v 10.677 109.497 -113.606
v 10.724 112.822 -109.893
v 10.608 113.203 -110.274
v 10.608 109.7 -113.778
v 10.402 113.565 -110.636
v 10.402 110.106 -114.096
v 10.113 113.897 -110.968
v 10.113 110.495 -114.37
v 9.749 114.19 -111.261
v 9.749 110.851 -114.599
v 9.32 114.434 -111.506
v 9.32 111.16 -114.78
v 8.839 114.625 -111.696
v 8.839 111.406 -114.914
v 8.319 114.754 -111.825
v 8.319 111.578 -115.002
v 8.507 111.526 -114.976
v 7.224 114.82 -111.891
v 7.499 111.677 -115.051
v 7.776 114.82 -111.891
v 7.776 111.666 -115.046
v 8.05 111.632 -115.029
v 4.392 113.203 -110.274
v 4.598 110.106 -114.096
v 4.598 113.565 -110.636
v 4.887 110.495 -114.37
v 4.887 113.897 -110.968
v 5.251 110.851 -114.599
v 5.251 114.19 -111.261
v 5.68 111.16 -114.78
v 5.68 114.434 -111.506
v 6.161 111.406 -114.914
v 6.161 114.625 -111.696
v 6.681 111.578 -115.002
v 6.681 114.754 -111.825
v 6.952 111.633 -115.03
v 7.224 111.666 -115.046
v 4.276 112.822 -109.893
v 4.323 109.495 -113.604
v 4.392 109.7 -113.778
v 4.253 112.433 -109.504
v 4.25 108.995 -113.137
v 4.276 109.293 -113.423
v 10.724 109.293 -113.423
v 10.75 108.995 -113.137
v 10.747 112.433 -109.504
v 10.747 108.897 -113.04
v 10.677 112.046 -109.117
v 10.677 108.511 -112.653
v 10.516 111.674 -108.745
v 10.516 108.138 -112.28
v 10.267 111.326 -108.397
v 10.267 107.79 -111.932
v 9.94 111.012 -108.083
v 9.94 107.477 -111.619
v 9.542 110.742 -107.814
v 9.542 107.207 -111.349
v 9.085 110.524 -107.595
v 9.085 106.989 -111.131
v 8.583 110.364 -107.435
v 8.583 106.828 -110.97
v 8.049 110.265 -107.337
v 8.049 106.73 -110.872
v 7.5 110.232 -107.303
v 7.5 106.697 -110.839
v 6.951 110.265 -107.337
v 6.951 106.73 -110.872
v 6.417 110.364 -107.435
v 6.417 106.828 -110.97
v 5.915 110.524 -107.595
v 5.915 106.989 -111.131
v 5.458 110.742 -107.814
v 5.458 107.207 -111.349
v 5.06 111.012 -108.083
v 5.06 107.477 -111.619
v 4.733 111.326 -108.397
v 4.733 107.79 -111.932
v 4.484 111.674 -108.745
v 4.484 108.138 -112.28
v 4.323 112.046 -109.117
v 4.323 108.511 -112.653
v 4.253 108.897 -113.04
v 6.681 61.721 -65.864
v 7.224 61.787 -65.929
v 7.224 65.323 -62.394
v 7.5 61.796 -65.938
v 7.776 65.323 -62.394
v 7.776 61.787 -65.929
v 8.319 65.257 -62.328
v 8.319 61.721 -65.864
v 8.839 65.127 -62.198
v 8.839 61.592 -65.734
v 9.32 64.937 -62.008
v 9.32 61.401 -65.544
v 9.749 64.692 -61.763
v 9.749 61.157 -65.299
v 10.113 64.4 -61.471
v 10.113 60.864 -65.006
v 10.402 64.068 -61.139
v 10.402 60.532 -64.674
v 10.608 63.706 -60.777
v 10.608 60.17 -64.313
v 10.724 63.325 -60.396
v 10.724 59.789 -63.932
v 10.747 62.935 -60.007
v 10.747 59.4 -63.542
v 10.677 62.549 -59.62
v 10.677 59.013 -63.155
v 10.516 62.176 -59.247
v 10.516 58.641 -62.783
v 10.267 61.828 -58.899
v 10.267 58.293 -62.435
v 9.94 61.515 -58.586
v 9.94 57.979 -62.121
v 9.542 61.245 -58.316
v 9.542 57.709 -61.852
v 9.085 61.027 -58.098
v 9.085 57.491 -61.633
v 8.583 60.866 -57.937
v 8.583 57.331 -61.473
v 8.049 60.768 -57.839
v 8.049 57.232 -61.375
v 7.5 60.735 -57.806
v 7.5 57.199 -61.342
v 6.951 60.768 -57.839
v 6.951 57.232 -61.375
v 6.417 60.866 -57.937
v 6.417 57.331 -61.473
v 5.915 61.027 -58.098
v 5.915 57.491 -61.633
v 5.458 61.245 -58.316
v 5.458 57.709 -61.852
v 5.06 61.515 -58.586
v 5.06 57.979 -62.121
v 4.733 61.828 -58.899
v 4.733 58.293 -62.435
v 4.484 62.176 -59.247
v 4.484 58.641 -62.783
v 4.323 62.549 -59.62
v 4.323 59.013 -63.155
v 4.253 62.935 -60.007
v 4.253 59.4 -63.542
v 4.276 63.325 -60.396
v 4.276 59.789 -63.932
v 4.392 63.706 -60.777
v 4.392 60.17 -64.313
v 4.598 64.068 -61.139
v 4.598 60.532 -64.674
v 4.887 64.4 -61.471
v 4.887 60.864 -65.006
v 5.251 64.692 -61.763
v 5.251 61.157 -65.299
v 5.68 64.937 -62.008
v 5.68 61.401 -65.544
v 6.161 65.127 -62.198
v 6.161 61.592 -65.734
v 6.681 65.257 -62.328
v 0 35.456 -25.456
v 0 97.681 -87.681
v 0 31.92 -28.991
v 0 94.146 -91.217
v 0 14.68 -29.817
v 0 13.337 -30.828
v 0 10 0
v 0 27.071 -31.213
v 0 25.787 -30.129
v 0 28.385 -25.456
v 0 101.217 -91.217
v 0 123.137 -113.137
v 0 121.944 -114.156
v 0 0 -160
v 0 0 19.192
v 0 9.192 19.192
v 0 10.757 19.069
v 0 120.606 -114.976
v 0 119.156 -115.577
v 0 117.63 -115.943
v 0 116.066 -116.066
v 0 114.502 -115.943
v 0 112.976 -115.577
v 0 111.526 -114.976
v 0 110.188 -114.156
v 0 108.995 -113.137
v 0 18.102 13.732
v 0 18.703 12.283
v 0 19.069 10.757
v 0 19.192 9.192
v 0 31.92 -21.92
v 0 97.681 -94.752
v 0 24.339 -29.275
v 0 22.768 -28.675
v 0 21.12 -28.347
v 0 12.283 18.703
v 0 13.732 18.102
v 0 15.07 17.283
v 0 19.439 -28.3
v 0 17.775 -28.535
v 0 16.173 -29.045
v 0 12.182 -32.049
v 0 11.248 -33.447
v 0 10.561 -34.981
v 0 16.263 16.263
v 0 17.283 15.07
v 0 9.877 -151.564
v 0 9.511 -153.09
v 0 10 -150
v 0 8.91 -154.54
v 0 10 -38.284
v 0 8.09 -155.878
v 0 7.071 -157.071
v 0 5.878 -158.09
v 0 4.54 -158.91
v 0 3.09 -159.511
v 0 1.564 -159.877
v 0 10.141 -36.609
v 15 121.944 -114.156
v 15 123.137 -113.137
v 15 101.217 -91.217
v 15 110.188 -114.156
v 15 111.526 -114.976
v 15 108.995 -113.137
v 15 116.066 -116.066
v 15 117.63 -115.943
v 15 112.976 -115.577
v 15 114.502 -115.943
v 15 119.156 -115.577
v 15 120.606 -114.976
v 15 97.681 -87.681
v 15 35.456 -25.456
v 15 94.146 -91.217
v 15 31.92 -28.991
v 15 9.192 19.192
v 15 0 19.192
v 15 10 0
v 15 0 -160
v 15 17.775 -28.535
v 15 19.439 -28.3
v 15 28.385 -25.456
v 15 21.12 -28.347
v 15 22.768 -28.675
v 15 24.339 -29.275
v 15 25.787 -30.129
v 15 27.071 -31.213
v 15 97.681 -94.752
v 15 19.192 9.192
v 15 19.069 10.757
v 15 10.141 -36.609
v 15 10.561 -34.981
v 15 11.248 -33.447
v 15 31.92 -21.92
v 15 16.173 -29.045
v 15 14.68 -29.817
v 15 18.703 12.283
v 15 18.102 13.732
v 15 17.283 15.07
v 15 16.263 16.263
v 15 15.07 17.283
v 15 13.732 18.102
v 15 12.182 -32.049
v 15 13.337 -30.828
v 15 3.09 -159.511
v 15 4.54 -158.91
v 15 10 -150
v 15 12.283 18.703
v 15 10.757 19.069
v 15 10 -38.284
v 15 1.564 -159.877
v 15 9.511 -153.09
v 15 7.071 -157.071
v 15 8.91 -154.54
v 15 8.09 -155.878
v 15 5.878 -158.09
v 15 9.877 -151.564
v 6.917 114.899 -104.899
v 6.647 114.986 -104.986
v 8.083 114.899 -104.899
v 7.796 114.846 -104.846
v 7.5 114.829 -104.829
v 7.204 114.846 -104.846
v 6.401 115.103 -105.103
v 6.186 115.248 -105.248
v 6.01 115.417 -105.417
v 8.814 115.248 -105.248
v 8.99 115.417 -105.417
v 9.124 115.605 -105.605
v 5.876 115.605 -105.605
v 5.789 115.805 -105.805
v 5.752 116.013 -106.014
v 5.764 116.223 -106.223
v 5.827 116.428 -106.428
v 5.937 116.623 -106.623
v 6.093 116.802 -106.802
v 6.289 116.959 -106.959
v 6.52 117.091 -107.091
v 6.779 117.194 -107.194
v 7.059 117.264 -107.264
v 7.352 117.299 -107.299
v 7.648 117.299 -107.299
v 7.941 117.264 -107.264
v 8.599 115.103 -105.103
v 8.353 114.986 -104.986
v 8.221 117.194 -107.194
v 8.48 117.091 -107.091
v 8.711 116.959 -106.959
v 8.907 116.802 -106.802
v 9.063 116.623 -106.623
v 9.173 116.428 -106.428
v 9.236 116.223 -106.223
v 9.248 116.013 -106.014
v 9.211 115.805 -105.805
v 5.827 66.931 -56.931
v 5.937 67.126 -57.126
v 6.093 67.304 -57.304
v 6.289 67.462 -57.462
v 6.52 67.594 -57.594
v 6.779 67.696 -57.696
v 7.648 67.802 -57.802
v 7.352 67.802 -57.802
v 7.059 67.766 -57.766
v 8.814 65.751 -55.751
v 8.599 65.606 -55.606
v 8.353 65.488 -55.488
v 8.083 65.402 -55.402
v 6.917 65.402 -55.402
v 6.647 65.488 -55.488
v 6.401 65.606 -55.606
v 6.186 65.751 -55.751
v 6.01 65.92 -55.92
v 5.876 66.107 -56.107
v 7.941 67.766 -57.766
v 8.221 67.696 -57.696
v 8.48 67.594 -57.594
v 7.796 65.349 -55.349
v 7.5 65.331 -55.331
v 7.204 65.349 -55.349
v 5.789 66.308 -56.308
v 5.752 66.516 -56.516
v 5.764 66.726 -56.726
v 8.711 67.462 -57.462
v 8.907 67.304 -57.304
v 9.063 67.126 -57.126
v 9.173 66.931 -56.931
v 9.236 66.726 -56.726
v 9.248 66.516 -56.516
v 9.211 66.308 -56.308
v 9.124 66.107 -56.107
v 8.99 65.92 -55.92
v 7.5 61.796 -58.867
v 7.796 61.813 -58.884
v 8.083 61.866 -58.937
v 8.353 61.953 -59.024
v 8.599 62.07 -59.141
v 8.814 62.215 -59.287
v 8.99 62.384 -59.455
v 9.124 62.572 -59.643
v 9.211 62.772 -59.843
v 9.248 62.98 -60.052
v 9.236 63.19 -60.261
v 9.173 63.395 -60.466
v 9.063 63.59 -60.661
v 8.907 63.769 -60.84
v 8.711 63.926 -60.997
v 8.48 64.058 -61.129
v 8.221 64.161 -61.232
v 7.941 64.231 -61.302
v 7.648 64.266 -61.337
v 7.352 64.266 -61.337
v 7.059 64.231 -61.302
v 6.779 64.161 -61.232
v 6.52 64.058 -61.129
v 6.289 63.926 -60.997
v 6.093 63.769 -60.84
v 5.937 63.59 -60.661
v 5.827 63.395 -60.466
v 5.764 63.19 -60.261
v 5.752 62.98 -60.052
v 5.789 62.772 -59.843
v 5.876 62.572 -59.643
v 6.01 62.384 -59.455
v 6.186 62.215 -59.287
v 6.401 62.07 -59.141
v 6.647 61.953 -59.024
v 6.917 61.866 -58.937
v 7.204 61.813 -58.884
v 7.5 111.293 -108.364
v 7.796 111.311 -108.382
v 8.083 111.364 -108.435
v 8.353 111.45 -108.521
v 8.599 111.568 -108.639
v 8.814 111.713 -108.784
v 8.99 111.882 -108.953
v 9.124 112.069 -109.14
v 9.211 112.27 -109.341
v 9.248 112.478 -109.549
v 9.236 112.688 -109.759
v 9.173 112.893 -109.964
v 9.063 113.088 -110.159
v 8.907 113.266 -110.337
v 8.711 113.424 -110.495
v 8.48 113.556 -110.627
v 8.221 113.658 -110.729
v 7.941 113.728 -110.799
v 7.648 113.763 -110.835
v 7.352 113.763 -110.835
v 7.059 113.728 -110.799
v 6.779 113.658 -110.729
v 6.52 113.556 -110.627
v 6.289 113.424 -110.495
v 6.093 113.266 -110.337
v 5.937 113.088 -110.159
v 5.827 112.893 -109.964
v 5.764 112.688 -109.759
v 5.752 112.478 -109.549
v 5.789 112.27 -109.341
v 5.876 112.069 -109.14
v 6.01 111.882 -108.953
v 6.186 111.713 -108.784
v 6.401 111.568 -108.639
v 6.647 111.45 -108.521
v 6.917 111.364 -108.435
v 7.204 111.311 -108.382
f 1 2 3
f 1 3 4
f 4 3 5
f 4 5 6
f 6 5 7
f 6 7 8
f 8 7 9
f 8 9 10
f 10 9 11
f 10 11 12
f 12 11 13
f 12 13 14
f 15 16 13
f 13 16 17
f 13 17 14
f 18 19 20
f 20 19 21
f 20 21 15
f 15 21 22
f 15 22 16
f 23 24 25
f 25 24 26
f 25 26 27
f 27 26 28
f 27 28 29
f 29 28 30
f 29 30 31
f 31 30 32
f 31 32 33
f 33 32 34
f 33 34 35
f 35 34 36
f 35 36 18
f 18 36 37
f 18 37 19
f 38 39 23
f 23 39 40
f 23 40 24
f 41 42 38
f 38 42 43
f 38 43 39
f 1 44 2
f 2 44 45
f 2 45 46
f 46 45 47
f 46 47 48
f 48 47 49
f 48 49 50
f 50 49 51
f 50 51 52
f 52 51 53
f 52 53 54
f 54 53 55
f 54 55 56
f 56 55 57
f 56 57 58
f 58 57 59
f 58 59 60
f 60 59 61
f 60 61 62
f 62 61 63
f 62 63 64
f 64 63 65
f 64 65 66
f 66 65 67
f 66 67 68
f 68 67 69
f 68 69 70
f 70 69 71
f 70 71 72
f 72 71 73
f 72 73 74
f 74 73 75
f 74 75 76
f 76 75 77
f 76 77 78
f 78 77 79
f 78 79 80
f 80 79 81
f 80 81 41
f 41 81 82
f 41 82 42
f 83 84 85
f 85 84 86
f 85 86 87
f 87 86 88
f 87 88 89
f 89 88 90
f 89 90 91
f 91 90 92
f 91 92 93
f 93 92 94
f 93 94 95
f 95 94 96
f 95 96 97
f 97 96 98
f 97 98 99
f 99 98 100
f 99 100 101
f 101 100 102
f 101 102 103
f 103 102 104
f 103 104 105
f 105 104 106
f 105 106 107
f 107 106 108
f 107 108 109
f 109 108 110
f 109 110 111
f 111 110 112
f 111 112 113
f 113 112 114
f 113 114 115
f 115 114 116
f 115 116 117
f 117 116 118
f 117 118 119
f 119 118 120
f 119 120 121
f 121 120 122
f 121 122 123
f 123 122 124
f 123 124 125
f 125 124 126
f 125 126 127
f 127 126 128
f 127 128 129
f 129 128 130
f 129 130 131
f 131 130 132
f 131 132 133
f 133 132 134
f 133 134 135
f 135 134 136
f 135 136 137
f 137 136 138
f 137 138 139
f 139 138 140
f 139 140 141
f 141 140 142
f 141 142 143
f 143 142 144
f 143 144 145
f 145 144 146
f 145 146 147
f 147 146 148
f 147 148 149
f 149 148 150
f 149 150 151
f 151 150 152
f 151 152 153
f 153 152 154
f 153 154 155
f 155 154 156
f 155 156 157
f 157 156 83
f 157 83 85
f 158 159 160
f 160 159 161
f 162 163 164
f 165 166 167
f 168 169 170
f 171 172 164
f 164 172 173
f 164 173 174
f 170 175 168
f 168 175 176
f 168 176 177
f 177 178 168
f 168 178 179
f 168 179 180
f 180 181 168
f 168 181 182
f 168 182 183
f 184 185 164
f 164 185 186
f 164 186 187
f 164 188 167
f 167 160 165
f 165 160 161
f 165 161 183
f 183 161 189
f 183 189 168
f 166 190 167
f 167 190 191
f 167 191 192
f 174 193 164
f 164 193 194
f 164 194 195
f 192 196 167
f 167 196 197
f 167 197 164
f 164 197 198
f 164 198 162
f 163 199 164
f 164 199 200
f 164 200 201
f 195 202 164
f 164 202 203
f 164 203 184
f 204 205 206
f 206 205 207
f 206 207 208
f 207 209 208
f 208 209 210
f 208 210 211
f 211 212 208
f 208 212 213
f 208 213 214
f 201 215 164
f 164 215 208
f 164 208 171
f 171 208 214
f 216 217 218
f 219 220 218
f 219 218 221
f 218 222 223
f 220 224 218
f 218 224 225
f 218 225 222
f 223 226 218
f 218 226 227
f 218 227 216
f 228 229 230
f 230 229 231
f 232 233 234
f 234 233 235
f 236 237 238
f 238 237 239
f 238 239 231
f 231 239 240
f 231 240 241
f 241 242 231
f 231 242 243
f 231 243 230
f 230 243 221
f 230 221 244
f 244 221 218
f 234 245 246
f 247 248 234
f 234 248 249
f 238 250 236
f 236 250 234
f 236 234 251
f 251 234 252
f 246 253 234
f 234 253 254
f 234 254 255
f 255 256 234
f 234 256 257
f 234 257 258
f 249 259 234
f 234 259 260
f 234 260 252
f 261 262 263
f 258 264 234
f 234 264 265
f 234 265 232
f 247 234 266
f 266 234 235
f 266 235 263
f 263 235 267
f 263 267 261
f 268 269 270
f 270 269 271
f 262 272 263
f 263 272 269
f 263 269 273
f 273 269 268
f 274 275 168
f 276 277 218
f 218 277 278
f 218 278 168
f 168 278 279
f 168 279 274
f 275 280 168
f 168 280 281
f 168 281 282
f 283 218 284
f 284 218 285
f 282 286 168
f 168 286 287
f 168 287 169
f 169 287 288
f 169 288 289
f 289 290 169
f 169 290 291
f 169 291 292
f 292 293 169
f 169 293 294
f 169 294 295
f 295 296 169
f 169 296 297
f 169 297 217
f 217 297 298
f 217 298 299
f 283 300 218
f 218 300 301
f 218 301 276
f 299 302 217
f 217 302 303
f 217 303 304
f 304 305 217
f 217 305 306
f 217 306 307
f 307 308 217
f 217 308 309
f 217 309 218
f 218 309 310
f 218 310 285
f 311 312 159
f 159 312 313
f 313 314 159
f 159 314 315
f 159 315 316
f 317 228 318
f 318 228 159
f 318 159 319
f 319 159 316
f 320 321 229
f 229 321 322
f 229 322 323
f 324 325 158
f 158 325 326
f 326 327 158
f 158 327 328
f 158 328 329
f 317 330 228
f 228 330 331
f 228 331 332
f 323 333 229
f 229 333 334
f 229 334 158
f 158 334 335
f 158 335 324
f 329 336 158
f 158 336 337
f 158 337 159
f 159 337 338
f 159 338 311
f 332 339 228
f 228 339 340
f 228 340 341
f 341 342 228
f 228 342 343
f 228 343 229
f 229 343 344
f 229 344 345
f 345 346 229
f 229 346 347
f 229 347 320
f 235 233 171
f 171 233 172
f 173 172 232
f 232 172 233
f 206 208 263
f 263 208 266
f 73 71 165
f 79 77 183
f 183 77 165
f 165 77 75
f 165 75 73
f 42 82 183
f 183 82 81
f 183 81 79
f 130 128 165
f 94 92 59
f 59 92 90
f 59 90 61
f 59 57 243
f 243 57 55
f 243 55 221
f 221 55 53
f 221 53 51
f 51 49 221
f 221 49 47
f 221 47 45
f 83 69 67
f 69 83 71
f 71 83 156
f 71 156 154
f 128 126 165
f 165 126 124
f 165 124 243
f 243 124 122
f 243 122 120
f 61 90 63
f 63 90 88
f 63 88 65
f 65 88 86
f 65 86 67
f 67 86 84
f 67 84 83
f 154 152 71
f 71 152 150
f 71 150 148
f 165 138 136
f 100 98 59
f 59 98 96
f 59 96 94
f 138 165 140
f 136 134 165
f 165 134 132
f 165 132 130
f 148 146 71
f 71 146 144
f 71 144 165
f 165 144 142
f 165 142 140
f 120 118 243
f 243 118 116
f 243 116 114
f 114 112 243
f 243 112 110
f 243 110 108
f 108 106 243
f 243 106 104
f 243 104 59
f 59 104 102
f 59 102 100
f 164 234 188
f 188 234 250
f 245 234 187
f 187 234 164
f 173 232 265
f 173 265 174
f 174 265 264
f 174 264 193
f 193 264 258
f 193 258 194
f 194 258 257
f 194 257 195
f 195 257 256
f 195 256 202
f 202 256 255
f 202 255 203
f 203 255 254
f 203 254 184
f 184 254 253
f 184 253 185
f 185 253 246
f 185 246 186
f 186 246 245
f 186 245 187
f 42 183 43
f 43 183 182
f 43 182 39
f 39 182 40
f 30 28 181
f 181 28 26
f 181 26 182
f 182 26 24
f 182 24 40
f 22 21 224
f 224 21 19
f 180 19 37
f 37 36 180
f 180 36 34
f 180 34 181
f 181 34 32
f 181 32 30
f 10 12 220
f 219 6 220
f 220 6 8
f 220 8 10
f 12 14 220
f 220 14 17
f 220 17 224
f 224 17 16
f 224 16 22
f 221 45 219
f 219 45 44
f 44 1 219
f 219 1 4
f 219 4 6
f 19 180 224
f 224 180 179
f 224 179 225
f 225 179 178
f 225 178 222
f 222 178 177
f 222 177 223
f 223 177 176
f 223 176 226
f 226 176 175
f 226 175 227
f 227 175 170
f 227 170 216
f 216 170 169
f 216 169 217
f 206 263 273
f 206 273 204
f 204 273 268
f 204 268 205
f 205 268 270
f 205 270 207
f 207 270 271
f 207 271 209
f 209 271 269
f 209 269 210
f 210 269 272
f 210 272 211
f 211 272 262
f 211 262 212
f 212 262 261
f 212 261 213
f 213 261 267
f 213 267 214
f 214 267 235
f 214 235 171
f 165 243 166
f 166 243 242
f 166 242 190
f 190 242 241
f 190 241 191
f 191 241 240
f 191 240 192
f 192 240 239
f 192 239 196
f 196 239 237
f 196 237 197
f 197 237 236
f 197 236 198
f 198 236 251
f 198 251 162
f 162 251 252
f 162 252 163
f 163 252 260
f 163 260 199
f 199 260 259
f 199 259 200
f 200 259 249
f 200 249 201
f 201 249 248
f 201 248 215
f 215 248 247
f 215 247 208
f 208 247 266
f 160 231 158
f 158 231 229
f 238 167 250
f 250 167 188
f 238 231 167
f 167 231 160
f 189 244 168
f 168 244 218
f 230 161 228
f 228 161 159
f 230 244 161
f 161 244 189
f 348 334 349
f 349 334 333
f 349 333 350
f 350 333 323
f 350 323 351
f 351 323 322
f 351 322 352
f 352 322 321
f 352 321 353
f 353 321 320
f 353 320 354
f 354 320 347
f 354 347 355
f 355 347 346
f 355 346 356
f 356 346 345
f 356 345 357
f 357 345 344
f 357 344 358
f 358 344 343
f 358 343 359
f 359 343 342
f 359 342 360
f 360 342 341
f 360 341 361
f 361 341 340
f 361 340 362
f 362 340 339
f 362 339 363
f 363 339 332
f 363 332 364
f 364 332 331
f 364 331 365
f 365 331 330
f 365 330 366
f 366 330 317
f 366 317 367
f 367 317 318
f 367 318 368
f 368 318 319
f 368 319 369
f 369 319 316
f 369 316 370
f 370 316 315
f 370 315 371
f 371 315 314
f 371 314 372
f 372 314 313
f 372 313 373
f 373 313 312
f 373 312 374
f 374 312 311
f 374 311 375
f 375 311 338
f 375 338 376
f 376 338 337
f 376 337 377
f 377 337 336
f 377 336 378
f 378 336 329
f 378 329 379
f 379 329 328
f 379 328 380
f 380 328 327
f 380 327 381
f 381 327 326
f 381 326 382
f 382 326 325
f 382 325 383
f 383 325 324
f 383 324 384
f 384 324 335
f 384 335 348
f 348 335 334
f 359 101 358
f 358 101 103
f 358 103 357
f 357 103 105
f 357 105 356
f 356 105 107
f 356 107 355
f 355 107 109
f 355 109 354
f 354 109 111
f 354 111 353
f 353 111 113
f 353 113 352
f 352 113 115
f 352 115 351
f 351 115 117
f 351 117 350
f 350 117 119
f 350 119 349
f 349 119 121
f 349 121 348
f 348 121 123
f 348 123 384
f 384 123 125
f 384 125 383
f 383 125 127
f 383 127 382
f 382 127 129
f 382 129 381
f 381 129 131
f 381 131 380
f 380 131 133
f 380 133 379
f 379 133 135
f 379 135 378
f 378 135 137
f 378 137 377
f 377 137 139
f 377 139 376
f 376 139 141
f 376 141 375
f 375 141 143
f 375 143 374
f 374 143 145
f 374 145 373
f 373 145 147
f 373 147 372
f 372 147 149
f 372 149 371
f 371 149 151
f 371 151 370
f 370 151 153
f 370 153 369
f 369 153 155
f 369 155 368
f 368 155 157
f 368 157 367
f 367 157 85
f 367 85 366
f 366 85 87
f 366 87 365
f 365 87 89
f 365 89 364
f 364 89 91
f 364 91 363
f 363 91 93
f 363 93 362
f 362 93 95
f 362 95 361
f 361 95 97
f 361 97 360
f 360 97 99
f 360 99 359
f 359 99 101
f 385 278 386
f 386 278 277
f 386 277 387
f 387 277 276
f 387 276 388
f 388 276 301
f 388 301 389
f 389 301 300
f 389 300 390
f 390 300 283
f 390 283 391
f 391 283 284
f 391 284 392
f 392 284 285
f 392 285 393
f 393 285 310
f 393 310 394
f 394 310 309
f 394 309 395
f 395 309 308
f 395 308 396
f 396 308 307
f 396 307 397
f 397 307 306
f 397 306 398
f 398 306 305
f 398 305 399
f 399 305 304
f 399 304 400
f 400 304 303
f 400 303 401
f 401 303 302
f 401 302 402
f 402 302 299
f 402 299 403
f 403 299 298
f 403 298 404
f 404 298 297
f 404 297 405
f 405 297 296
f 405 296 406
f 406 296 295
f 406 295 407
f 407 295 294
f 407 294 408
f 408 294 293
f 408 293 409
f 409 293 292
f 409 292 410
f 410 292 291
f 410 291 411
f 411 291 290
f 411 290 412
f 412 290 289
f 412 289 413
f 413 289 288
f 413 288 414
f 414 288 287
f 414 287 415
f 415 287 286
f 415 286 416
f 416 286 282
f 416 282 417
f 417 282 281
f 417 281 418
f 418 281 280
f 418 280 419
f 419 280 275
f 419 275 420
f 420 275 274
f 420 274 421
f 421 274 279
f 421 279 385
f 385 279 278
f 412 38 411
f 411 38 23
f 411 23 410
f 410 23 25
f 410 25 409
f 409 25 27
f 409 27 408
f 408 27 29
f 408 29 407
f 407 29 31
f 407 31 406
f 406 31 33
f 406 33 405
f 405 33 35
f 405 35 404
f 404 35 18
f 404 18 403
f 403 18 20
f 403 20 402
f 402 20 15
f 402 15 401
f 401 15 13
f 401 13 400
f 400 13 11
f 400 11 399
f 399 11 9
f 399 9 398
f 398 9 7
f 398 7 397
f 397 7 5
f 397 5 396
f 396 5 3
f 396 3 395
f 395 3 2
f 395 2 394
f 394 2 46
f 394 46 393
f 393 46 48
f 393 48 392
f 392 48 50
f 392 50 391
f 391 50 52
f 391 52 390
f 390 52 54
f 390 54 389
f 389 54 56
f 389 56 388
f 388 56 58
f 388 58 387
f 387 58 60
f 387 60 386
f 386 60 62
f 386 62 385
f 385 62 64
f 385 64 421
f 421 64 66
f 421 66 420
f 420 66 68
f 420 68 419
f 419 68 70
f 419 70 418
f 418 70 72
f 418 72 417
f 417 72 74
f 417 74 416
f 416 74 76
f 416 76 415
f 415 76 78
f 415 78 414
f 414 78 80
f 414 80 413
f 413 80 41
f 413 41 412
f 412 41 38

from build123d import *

# Parameters (mm, degrees)
SKETCH1_W           = 160
SKETCH1_H           = 10
SKETCH1_W_2         = 9.192388155
BOSS_EXTRUDE1_DEPTH = 15
CUT_EXTRUDE1_REACH  = 205.486
SKETCH2_R           = 3.25
SKETCH2_R_2         = 1.75
FILLET1_R           = 10
SKETCH2_3_W         = 15
SKETCH2_3_H         = 5
CUT_EXTRUDE2_DEPTH  = 5
SKETCH2_4_R         = 3.25
SKETCH2_4_R_2       = 1.75
BOSS_EXTRUDE2_DEPTH = 5


with BuildPart() as part:
    # Sketch1 → Boss-Extrude1 (new body)
    with BuildSketch(Plane(origin=(0, 0, 0), x_dir=(0, 0, -1), z_dir=(1, 0, 0))):
        Polygon((113.13708499, 123.13708499), (0, 10), (14.142135624, 10), (120.208152802, 116.066017178), align=None)
        with Locations((80, 5)):
            Rectangle(SKETCH1_W, SKETCH1_H)
        with Locations((-4.596194077, 5)):
            Rectangle(SKETCH1_W_2, SKETCH1_H)
        Polygon((0, 10), (-9.192388155, 19.192388155), (-9.192388155, 10), align=None)
        Polygon((-9.192388155, 0), (-9.192388155, 10), (-9.192388155, 19.192388155), (-19.192388155, 19.192388155), (-19.192388155, 0), align=None)
    extrude(amount=BOSS_EXTRUDE1_DEPTH)

    # Sketch2 → Cut-Extrude1 (cut, up to next)
    with BuildSketch(Plane(origin=(0, 5, 5), x_dir=(1, 0, 0), z_dir=(0, 0.7071067811865562, 0.7071067811865389)), mode=Mode.PRIVATE) as cut_extrude1_sk1:
        with Locations(Location((7.5, 157.071067812, 0), (0, 0, 270))):
            Circle(SKETCH2_R)
        with Locations((7.5, 157.071067812)):
            Circle(SKETCH2_R_2, mode=Mode.SUBTRACT)
    cut_extrude1_tool1 = extrude(cut_extrude1_sk1.sketch, amount=-CUT_EXTRUDE1_REACH, mode=Mode.PRIVATE) & part.part
    # Sketch2 → Cut-Extrude1 (cut, up to next)
    with BuildSketch(Plane(origin=(0, 5, 5), x_dir=(1, 0, 0), z_dir=(0, 0.7071067811865562, 0.7071067811865389)), mode=Mode.PRIVATE) as cut_extrude1_sk2:
        with Locations((7.5, 157.071067812)):
            Circle(SKETCH2_R_2)
    cut_extrude1_tool2 = extrude(cut_extrude1_sk2.sketch, amount=-CUT_EXTRUDE1_REACH, mode=Mode.PRIVATE) & part.part
    # Sketch2 → Cut-Extrude1 (cut, up to next)
    with BuildSketch(Plane(origin=(0, 5, 5), x_dir=(1, 0, 0), z_dir=(0, 0.7071067811865562, 0.7071067811865389)), mode=Mode.PRIVATE) as cut_extrude1_sk3:
        with Locations(Location((7.5, 87.071067812, 0), (0, 0, 270))):
            Circle(SKETCH2_R)
        with Locations((7.5, 87.071067812)):
            Circle(SKETCH2_R_2, mode=Mode.SUBTRACT)
    cut_extrude1_tool3 = extrude(cut_extrude1_sk3.sketch, amount=-CUT_EXTRUDE1_REACH, mode=Mode.PRIVATE) & part.part
    # Sketch2 → Cut-Extrude1 (cut, up to next)
    with BuildSketch(Plane(origin=(0, 5, 5), x_dir=(1, 0, 0), z_dir=(0, 0.7071067811865562, 0.7071067811865389)), mode=Mode.PRIVATE) as cut_extrude1_sk4:
        with Locations((7.5, 87.071067812)):
            Circle(SKETCH2_R_2)
    cut_extrude1_tool4 = extrude(cut_extrude1_sk4.sketch, amount=-CUT_EXTRUDE1_REACH, mode=Mode.PRIVATE) & part.part
    add(cut_extrude1_tool1.solids().sort_by_distance((7.5, 118.299114, -108.299114))[0], mode=Mode.SUBTRACT)
    add(cut_extrude1_tool2.solids().sort_by_distance((7.5, 116.066017, -106.066017))[0], mode=Mode.SUBTRACT)
    add(cut_extrude1_tool3.solids().sort_by_distance((7.5, 68.80164, -58.80164))[0], mode=Mode.SUBTRACT)
    add(cut_extrude1_tool4.solids().sort_by_distance((7.5, 66.568542, -56.568542))[0], mode=Mode.SUBTRACT)

    # Fillet1
    # the kernel refuses this fillet: 10 mm, written as the material it adds along each edge
    with BuildSketch(Plane(origin=(0, 10, -14.142135624), x_dir=(0, 0.707106781186544, -0.7071067811865511), z_dir=(1, 0, 0))) as fillet1_piece_1:
        with BuildLine():
            CenterArc((FILLET1_R * 2.41421356237, -FILLET1_R), FILLET1_R, 90, 135)
            Line((FILLET1_R * 1.70710678119, -FILLET1_R * 1.70710678119), (0, 0))
            Line((0, 0), (FILLET1_R * 2.41421356237, 0))
        make_face()
    extrude(amount=15)
    # the kernel refuses this fillet: 10 mm, written as the material it takes off along each edge
    with BuildSketch(Plane(origin=(-25, 116.066017178, -120.208152802), x_dir=(0, 0.7071067811865482, 0.7071067811865468), z_dir=(1, 0, 0))) as fillet1_2_piece_1:
        with BuildLine():
            CenterArc((FILLET1_R, FILLET1_R), FILLET1_R, 180, 90)
            Line((0, FILLET1_R), (0, 0))
            Line((0, 0), (FILLET1_R, 0))
        make_face()
    extrude(amount=65, mode=Mode.SUBTRACT)
    with BuildSketch(Plane(origin=(-25, 10, -160), x_dir=(0, -1, 0), z_dir=(1, 0, 0)), Plane(origin=(-25, 19.192388155, 19.192388155), x_dir=(0, 0, -1), z_dir=(1, 0, 0))) as fillet1_2_piece_2:
        with BuildLine():
            CenterArc((FILLET1_R, -FILLET1_R), FILLET1_R, 90, 90)
            Line((0, -FILLET1_R), (0, 0))
            Line((0, 0), (FILLET1_R, 0))
        make_face()
    extrude(amount=65, mode=Mode.SUBTRACT)

    # Sketch2<3> → Cut-Extrude2 (cut)
    with BuildSketch(Plane(origin=(0, 5, 5), x_dir=(1, 0, 0), z_dir=(0, 0.7071067811865562, 0.7071067811865389))):
        with Locations((7.5, 133.571067812)):
            Rectangle(SKETCH2_3_W, SKETCH2_3_H)
        with Locations((7.5, 40.571067812)):
            Rectangle(SKETCH2_3_W, SKETCH2_3_H)
    extrude(amount=-CUT_EXTRUDE2_DEPTH, mode=Mode.SUBTRACT)

    # Sketch2<4> → Boss-Extrude2 (add)
    # profile 1 of 2: a face of its own
    with BuildSketch(Plane(origin=(0, 5, 5), x_dir=(1, 0, 0), z_dir=(0, 0.7071067811865562, 0.7071067811865389))):
        with Locations(Location((7.5, 87.071067812, 0), (0, 0, 270))):
            Circle(SKETCH2_4_R)
        with Locations(Location((7.5, 87.071067812, 0), (0, 0, 270))):
            Circle(SKETCH2_4_R_2, mode=Mode.SUBTRACT)
    # profile 2 of 2: a face of its own
    with BuildSketch(Plane(origin=(0, 5, 5), x_dir=(1, 0, 0), z_dir=(0, 0.7071067811865562, 0.7071067811865389))):
        with Locations(Location((7.5, 157.071067812, 0), (0, 0, 270))):
            Circle(SKETCH2_4_R)
        with Locations(Location((7.5, 157.071067812, 0), (0, 0, 270))):
            Circle(SKETCH2_4_R_2, mode=Mode.SUBTRACT)
    extrude(amount=-BOSS_EXTRUDE2_DEPTH)


solid = part.part
